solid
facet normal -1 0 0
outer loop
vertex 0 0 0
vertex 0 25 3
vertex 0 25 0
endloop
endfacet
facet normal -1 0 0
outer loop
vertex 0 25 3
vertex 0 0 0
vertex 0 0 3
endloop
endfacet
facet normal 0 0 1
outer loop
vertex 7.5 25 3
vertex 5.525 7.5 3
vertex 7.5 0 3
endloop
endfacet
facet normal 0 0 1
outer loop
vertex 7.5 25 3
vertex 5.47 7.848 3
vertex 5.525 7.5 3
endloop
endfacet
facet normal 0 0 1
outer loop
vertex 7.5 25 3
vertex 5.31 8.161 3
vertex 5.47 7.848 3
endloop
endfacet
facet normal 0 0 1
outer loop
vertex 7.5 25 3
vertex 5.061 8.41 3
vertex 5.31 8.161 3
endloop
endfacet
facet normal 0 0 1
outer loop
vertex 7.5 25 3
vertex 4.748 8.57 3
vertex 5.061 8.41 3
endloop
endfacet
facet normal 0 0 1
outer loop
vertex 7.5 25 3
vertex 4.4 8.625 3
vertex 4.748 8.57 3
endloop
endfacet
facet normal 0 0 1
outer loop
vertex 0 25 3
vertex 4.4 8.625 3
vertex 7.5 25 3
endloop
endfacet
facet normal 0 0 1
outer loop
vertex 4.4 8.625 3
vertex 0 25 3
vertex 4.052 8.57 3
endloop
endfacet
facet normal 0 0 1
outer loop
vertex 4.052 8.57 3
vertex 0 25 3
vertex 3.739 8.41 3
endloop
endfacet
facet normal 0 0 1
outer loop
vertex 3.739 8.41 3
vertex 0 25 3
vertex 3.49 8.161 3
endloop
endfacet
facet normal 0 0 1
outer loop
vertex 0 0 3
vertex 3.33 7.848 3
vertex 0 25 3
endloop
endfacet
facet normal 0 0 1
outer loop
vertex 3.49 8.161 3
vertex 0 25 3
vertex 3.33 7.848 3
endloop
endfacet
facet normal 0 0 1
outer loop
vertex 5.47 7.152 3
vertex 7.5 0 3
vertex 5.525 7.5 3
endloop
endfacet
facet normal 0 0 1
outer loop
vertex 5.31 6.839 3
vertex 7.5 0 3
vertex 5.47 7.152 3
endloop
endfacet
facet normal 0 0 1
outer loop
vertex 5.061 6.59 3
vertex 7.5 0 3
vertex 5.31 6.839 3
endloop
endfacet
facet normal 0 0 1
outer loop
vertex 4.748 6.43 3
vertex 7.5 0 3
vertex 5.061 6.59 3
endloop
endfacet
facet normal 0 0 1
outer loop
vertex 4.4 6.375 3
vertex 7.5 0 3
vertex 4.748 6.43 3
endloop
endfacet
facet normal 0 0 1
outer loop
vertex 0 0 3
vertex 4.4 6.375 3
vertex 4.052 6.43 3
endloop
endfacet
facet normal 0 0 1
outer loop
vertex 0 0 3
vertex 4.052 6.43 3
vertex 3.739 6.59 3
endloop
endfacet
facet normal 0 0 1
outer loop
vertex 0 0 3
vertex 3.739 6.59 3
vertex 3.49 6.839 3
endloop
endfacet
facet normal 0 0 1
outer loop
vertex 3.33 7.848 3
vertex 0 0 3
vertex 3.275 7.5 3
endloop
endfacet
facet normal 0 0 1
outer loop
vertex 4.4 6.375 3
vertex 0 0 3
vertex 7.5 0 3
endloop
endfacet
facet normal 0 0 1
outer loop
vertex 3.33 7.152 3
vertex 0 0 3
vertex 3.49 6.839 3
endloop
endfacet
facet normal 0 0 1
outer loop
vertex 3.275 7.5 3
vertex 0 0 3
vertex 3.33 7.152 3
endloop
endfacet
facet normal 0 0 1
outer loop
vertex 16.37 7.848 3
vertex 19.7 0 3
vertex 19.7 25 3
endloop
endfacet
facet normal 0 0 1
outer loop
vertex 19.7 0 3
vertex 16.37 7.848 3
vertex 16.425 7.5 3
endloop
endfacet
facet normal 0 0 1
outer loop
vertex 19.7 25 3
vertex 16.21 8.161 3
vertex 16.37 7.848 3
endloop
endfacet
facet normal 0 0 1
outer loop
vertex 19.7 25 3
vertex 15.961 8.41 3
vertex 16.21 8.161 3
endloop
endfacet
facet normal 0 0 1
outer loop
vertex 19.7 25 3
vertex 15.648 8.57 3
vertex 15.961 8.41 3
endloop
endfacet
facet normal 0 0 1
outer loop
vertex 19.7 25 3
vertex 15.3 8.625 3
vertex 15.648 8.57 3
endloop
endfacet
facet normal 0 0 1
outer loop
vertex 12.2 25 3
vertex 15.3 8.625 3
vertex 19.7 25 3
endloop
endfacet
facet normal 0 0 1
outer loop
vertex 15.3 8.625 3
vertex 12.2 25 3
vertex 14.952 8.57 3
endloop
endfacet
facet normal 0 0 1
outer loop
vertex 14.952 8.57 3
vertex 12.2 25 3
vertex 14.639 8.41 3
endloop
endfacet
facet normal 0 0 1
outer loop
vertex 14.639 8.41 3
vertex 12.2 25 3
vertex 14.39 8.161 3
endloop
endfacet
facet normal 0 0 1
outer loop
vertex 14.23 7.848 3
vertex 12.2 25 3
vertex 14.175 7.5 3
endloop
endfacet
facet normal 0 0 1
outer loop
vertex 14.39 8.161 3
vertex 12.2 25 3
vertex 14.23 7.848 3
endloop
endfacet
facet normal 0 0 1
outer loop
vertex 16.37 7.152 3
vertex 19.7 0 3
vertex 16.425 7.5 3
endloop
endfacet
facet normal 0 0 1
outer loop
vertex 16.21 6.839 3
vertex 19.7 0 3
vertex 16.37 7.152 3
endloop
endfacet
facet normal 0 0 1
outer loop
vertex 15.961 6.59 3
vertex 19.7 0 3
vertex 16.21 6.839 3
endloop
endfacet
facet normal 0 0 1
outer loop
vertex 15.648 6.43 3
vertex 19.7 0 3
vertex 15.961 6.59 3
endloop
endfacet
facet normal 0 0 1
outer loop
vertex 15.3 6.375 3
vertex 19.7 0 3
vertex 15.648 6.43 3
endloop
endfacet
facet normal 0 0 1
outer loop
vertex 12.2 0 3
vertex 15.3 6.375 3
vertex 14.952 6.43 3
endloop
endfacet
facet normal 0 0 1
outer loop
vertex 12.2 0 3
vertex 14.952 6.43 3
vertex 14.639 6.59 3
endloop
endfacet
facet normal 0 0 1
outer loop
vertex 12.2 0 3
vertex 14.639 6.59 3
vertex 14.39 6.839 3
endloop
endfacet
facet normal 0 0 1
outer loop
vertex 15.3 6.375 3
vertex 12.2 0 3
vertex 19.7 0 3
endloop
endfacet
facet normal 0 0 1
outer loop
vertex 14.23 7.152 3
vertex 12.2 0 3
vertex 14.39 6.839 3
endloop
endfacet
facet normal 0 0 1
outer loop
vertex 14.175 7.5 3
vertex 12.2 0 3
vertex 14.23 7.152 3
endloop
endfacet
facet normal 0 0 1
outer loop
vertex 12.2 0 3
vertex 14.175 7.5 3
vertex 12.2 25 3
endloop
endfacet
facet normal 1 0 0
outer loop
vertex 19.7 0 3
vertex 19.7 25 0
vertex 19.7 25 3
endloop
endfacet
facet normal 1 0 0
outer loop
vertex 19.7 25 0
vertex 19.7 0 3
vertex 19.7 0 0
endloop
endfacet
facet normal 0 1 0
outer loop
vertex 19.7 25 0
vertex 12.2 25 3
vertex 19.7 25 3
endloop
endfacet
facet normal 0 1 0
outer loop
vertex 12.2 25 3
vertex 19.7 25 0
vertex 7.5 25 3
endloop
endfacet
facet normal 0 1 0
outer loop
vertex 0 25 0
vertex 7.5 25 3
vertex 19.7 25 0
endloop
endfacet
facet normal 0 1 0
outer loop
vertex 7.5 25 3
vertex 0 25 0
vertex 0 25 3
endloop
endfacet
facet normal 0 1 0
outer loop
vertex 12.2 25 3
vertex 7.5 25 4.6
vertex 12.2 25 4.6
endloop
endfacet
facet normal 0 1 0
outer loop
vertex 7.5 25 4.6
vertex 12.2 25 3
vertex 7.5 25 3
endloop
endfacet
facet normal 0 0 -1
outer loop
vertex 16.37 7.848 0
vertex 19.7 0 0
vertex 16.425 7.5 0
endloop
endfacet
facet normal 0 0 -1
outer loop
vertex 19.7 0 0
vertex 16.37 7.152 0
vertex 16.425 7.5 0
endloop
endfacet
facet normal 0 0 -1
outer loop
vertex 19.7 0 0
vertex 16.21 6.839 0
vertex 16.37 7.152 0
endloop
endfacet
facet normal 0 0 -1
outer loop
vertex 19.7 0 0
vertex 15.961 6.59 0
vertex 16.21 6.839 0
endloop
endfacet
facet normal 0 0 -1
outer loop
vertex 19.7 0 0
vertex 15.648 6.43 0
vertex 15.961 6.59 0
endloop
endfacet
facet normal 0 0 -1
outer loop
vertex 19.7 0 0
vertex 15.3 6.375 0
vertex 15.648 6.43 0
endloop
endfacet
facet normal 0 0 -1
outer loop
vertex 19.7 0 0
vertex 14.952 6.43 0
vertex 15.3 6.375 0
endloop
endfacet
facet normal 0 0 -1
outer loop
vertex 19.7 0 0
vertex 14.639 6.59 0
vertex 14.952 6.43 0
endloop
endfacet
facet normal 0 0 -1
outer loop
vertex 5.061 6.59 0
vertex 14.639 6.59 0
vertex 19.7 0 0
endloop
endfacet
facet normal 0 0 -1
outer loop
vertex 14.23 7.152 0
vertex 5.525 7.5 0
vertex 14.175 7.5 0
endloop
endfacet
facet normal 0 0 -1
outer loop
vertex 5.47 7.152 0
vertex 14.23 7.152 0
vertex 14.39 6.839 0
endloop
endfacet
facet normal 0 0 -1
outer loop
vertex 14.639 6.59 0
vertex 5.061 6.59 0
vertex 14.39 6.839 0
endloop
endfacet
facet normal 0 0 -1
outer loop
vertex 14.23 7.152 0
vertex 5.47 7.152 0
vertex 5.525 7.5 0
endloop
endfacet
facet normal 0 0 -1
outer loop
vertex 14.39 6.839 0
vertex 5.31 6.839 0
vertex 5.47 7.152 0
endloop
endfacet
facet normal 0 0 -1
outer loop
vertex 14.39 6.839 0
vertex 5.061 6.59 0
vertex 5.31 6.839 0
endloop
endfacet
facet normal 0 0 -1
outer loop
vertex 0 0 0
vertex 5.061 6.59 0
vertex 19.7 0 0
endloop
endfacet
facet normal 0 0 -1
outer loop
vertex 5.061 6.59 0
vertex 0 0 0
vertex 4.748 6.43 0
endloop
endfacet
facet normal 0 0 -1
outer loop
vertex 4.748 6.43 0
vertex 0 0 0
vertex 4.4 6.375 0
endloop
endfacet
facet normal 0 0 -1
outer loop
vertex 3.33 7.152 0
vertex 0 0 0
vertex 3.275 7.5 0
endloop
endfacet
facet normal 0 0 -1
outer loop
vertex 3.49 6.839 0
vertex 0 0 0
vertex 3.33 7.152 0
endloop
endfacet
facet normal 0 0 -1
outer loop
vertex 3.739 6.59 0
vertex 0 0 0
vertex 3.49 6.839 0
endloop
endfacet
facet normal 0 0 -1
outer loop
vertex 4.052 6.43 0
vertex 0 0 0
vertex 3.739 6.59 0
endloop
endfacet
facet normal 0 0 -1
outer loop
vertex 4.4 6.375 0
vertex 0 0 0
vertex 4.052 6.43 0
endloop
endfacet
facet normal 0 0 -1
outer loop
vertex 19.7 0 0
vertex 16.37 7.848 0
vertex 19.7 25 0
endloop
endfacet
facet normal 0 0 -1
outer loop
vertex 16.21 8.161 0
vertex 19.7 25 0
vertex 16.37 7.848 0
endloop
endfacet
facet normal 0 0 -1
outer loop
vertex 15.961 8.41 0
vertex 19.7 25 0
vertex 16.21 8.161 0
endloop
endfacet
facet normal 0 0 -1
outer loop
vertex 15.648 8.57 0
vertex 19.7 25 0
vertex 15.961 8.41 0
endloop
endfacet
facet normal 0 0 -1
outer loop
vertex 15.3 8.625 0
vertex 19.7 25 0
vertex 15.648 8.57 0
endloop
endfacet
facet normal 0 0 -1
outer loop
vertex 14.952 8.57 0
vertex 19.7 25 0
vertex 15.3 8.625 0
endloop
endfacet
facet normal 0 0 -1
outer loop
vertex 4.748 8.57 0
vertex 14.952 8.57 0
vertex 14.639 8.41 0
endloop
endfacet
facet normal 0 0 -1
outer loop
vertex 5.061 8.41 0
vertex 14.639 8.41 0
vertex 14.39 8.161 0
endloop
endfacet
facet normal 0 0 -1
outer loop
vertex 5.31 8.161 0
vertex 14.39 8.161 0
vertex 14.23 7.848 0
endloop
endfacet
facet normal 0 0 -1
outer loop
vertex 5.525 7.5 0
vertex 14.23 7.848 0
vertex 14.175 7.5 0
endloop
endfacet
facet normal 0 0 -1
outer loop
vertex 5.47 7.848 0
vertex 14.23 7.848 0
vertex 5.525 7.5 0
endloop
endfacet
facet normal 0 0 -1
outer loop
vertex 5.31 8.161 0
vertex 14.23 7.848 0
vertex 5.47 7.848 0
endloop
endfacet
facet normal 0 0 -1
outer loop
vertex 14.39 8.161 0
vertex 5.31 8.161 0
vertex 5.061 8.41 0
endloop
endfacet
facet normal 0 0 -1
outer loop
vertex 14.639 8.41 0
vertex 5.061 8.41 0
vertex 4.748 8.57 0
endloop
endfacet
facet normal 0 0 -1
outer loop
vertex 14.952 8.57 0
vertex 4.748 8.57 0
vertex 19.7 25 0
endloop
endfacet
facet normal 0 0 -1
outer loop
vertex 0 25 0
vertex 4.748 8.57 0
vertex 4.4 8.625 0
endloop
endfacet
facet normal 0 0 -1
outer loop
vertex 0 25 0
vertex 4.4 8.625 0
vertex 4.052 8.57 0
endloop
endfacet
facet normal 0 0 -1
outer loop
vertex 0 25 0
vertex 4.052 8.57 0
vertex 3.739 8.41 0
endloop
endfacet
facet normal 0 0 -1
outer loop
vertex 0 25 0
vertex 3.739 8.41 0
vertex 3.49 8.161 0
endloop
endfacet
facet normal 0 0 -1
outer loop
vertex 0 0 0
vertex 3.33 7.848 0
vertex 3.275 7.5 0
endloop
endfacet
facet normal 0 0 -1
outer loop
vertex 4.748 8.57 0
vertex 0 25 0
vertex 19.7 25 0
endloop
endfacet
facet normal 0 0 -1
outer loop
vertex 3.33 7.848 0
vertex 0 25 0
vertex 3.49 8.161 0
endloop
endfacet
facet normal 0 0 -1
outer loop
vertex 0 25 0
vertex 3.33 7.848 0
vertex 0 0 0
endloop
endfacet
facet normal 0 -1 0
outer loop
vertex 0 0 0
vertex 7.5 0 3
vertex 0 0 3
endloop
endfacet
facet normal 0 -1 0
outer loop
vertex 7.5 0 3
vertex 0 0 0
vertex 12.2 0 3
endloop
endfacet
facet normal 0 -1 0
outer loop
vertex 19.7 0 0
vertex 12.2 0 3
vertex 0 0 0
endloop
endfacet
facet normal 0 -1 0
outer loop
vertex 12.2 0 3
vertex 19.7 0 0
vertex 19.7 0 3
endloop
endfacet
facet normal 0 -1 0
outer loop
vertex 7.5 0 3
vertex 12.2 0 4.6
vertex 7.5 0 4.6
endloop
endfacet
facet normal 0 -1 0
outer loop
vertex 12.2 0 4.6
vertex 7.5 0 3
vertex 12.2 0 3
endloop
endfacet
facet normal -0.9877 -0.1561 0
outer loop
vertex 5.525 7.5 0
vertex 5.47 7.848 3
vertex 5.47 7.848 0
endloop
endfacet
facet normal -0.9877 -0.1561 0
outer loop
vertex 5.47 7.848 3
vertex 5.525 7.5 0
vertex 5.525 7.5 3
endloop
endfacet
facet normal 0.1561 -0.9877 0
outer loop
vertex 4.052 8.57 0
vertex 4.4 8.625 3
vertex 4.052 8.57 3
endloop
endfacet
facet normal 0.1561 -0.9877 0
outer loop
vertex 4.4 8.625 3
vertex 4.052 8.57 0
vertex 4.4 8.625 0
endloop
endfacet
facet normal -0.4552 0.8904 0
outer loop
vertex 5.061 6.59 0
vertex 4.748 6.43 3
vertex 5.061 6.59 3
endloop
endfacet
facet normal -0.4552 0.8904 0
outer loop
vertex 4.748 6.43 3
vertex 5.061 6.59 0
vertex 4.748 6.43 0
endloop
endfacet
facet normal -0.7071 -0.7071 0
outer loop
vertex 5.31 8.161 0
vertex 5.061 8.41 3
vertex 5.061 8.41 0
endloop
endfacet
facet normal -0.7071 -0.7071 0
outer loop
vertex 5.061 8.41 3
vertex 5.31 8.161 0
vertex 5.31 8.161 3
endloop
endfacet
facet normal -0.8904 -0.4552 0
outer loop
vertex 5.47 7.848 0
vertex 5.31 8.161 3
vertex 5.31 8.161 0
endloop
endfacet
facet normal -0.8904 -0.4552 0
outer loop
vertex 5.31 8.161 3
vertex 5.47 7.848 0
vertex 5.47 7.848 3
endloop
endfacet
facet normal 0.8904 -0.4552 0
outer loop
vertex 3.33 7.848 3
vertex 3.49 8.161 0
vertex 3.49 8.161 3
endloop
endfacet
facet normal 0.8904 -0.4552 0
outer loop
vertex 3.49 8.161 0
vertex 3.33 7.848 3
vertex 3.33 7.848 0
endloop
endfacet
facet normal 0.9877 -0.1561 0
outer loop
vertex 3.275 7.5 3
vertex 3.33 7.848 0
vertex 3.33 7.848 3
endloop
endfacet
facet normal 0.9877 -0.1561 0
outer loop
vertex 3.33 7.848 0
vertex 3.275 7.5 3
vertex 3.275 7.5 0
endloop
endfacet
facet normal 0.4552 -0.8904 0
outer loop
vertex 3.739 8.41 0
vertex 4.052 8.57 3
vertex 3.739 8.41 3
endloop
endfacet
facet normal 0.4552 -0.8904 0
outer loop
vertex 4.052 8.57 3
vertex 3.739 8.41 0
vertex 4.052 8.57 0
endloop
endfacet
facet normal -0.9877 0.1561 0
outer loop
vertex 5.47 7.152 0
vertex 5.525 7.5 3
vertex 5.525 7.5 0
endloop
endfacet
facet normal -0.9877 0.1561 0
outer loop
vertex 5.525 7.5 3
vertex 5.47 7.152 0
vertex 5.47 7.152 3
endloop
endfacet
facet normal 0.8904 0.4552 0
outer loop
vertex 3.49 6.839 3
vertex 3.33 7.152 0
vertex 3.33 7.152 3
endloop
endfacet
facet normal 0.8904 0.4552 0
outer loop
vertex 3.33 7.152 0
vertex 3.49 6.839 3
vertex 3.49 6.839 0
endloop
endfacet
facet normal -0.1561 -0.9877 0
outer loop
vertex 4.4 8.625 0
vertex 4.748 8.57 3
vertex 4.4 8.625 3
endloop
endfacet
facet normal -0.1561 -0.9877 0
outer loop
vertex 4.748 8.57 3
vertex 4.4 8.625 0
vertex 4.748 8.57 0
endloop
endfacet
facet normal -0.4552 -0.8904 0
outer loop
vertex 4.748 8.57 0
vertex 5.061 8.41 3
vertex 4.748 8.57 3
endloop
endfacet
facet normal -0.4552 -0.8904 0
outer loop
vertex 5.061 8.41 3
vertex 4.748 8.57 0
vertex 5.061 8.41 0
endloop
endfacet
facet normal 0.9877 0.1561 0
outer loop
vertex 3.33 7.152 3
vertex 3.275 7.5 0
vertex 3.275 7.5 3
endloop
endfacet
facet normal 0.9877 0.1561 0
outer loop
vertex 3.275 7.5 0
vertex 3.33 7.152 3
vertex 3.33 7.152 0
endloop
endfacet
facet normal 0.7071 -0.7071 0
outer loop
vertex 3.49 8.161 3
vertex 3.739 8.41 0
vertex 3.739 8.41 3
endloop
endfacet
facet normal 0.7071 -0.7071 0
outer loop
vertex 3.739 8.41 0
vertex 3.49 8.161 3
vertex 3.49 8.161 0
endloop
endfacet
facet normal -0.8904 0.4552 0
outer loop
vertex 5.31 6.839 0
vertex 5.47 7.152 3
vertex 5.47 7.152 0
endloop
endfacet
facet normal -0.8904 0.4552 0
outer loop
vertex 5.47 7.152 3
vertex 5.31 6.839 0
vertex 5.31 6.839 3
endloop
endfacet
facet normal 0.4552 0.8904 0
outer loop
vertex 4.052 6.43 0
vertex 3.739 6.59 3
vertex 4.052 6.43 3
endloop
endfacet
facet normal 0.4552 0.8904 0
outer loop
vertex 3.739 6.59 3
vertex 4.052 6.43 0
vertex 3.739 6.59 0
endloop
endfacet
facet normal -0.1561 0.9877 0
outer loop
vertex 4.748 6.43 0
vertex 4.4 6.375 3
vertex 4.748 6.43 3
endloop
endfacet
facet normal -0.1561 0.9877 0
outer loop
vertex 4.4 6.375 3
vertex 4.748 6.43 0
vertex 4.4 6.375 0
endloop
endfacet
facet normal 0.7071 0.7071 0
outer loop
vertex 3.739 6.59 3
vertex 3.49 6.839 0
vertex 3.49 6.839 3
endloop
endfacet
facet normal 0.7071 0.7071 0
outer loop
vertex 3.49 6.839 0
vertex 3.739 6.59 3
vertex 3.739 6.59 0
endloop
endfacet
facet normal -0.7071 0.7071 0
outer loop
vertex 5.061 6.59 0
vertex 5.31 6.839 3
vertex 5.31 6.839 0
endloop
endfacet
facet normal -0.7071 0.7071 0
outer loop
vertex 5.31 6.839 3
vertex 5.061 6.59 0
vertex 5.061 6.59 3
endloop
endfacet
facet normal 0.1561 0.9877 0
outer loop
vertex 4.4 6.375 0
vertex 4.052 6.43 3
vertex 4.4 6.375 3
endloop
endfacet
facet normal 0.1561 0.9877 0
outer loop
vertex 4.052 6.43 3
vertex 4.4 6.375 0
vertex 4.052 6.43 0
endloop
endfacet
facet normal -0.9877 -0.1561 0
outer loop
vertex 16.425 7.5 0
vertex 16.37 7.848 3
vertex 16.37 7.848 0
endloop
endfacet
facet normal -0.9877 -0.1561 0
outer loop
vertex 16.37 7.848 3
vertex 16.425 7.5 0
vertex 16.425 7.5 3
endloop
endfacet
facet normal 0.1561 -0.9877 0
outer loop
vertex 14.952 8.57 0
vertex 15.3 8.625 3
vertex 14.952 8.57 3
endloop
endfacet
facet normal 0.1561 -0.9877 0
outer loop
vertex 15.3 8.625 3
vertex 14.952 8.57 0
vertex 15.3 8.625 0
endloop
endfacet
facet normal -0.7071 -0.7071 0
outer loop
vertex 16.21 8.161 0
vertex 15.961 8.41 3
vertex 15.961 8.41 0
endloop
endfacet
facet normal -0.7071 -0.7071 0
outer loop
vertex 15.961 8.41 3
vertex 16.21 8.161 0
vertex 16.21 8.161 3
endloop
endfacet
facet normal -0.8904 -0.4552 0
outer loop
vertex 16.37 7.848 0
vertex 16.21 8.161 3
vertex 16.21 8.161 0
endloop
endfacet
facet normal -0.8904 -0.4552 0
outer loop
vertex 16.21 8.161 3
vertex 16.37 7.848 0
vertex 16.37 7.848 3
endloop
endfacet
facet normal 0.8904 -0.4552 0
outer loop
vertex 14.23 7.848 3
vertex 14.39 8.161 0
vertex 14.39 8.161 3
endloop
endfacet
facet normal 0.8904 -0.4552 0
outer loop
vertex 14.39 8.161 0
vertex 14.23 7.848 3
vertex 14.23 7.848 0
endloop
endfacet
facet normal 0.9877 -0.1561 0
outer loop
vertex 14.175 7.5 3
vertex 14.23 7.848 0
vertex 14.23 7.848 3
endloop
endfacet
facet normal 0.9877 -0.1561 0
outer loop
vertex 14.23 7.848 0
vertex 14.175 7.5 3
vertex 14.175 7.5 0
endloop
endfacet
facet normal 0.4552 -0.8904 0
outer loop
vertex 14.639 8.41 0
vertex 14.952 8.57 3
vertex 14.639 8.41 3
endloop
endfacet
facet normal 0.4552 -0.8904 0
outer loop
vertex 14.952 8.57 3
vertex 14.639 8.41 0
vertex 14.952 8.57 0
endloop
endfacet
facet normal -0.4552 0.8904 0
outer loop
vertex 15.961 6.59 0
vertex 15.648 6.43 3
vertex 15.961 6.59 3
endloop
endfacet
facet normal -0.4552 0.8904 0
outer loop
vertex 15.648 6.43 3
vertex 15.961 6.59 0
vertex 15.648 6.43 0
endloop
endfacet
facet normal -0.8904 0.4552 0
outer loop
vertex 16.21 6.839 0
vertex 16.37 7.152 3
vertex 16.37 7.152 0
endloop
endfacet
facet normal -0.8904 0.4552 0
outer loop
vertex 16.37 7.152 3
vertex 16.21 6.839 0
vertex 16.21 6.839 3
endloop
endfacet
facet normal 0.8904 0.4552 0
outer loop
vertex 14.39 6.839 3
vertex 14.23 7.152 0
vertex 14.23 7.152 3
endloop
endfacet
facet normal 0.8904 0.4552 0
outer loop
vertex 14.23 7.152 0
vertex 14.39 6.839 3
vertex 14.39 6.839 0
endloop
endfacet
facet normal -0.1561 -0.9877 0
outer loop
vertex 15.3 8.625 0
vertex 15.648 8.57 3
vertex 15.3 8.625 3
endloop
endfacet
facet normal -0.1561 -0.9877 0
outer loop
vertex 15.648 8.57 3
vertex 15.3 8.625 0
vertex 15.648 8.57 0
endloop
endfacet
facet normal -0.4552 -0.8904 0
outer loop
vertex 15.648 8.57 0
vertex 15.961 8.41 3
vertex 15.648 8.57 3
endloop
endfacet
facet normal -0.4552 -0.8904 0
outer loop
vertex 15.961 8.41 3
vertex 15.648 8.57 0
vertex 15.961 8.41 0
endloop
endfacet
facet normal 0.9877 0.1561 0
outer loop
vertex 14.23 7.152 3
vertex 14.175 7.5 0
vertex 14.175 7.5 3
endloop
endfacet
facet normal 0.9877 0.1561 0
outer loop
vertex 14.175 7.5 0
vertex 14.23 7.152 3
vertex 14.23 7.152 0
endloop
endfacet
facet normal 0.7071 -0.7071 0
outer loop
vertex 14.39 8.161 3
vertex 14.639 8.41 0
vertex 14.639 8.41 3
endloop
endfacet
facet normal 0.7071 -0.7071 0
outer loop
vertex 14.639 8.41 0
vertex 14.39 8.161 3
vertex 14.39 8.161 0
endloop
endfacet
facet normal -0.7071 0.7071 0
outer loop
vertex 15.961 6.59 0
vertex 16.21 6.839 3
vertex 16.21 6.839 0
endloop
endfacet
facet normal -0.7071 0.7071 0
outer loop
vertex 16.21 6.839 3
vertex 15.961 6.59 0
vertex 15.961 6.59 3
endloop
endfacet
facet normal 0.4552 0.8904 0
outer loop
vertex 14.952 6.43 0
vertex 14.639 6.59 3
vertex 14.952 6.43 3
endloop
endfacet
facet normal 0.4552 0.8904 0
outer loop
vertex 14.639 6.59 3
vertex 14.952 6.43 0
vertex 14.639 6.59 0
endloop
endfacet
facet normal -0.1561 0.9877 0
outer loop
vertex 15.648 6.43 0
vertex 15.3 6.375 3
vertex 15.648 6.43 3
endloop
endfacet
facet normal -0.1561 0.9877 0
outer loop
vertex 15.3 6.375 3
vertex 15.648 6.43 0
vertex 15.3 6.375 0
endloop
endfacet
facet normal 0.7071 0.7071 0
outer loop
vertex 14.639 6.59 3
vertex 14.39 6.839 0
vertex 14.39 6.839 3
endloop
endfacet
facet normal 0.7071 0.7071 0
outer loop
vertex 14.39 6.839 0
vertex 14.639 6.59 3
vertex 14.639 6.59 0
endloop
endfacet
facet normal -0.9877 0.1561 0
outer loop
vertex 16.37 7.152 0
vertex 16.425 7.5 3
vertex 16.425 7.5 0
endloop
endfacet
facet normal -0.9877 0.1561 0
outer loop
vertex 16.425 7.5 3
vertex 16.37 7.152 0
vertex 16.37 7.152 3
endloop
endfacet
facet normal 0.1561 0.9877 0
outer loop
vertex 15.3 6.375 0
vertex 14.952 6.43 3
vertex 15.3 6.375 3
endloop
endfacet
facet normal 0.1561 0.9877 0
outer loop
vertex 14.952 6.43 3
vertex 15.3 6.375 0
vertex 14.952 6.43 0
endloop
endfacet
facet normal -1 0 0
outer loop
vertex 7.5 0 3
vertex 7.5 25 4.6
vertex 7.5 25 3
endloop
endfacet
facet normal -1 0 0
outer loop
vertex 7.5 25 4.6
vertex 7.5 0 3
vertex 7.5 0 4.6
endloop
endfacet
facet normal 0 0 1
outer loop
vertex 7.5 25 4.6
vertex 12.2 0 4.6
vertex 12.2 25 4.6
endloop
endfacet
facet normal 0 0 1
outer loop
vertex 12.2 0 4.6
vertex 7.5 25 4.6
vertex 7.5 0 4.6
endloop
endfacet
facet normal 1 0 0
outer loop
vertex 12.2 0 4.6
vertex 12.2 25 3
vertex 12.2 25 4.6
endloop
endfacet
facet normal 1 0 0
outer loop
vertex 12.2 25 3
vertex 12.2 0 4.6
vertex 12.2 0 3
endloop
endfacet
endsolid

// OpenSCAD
/************************************************************************

	podule_join.scad
    
	Acorn Archimedes A3xx/A4xx podule joining bracket
    Copyright (C) 2019 Simon Inns
    
    This is free software: you can redistribute it and/or modify
	it under the terms of the GNU General Public License as published by
	the Free Software Foundation, either version 3 of the License, or
	(at your option) any later version.
    
    This program is distributed in the hope that it will be useful,
    but WITHOUT ANY WARRANTY; without even the implied warranty of
    MERCHANTABILITY or FITNESS FOR A PARTICULAR PURPOSE.  See the
    GNU General Public License for more details.
    
    You should have received a copy of the GNU General Public License
    along with this program.  If not, see <http://www.gnu.org/licenses/>.
	
    Email: simon.inns@gmail.com
    
************************************************************************/

$fn = 20;

difference() {
    // Main plate
    cube([19.7, 25.0, 3.0], center = false);

    // M2.5 screw thread left
    translate([7.5 - 3.1, 7.5, 0.0]) {
        cylinder(3.0, 2.25 / 2, 2.25 / 2);
    }

    // M2.5 screw thread right
    translate([7.5 + 4.7 + 3.1, 7.5, 0.0]) {
        cylinder(3.0, 2.25 / 2, 2.25 / 2);
    }
}

// Raised centre ridge
translate([7.5, 0.0, 3.0]) {
    cube([4.7, 25.0, 1.6], center = false);
}
